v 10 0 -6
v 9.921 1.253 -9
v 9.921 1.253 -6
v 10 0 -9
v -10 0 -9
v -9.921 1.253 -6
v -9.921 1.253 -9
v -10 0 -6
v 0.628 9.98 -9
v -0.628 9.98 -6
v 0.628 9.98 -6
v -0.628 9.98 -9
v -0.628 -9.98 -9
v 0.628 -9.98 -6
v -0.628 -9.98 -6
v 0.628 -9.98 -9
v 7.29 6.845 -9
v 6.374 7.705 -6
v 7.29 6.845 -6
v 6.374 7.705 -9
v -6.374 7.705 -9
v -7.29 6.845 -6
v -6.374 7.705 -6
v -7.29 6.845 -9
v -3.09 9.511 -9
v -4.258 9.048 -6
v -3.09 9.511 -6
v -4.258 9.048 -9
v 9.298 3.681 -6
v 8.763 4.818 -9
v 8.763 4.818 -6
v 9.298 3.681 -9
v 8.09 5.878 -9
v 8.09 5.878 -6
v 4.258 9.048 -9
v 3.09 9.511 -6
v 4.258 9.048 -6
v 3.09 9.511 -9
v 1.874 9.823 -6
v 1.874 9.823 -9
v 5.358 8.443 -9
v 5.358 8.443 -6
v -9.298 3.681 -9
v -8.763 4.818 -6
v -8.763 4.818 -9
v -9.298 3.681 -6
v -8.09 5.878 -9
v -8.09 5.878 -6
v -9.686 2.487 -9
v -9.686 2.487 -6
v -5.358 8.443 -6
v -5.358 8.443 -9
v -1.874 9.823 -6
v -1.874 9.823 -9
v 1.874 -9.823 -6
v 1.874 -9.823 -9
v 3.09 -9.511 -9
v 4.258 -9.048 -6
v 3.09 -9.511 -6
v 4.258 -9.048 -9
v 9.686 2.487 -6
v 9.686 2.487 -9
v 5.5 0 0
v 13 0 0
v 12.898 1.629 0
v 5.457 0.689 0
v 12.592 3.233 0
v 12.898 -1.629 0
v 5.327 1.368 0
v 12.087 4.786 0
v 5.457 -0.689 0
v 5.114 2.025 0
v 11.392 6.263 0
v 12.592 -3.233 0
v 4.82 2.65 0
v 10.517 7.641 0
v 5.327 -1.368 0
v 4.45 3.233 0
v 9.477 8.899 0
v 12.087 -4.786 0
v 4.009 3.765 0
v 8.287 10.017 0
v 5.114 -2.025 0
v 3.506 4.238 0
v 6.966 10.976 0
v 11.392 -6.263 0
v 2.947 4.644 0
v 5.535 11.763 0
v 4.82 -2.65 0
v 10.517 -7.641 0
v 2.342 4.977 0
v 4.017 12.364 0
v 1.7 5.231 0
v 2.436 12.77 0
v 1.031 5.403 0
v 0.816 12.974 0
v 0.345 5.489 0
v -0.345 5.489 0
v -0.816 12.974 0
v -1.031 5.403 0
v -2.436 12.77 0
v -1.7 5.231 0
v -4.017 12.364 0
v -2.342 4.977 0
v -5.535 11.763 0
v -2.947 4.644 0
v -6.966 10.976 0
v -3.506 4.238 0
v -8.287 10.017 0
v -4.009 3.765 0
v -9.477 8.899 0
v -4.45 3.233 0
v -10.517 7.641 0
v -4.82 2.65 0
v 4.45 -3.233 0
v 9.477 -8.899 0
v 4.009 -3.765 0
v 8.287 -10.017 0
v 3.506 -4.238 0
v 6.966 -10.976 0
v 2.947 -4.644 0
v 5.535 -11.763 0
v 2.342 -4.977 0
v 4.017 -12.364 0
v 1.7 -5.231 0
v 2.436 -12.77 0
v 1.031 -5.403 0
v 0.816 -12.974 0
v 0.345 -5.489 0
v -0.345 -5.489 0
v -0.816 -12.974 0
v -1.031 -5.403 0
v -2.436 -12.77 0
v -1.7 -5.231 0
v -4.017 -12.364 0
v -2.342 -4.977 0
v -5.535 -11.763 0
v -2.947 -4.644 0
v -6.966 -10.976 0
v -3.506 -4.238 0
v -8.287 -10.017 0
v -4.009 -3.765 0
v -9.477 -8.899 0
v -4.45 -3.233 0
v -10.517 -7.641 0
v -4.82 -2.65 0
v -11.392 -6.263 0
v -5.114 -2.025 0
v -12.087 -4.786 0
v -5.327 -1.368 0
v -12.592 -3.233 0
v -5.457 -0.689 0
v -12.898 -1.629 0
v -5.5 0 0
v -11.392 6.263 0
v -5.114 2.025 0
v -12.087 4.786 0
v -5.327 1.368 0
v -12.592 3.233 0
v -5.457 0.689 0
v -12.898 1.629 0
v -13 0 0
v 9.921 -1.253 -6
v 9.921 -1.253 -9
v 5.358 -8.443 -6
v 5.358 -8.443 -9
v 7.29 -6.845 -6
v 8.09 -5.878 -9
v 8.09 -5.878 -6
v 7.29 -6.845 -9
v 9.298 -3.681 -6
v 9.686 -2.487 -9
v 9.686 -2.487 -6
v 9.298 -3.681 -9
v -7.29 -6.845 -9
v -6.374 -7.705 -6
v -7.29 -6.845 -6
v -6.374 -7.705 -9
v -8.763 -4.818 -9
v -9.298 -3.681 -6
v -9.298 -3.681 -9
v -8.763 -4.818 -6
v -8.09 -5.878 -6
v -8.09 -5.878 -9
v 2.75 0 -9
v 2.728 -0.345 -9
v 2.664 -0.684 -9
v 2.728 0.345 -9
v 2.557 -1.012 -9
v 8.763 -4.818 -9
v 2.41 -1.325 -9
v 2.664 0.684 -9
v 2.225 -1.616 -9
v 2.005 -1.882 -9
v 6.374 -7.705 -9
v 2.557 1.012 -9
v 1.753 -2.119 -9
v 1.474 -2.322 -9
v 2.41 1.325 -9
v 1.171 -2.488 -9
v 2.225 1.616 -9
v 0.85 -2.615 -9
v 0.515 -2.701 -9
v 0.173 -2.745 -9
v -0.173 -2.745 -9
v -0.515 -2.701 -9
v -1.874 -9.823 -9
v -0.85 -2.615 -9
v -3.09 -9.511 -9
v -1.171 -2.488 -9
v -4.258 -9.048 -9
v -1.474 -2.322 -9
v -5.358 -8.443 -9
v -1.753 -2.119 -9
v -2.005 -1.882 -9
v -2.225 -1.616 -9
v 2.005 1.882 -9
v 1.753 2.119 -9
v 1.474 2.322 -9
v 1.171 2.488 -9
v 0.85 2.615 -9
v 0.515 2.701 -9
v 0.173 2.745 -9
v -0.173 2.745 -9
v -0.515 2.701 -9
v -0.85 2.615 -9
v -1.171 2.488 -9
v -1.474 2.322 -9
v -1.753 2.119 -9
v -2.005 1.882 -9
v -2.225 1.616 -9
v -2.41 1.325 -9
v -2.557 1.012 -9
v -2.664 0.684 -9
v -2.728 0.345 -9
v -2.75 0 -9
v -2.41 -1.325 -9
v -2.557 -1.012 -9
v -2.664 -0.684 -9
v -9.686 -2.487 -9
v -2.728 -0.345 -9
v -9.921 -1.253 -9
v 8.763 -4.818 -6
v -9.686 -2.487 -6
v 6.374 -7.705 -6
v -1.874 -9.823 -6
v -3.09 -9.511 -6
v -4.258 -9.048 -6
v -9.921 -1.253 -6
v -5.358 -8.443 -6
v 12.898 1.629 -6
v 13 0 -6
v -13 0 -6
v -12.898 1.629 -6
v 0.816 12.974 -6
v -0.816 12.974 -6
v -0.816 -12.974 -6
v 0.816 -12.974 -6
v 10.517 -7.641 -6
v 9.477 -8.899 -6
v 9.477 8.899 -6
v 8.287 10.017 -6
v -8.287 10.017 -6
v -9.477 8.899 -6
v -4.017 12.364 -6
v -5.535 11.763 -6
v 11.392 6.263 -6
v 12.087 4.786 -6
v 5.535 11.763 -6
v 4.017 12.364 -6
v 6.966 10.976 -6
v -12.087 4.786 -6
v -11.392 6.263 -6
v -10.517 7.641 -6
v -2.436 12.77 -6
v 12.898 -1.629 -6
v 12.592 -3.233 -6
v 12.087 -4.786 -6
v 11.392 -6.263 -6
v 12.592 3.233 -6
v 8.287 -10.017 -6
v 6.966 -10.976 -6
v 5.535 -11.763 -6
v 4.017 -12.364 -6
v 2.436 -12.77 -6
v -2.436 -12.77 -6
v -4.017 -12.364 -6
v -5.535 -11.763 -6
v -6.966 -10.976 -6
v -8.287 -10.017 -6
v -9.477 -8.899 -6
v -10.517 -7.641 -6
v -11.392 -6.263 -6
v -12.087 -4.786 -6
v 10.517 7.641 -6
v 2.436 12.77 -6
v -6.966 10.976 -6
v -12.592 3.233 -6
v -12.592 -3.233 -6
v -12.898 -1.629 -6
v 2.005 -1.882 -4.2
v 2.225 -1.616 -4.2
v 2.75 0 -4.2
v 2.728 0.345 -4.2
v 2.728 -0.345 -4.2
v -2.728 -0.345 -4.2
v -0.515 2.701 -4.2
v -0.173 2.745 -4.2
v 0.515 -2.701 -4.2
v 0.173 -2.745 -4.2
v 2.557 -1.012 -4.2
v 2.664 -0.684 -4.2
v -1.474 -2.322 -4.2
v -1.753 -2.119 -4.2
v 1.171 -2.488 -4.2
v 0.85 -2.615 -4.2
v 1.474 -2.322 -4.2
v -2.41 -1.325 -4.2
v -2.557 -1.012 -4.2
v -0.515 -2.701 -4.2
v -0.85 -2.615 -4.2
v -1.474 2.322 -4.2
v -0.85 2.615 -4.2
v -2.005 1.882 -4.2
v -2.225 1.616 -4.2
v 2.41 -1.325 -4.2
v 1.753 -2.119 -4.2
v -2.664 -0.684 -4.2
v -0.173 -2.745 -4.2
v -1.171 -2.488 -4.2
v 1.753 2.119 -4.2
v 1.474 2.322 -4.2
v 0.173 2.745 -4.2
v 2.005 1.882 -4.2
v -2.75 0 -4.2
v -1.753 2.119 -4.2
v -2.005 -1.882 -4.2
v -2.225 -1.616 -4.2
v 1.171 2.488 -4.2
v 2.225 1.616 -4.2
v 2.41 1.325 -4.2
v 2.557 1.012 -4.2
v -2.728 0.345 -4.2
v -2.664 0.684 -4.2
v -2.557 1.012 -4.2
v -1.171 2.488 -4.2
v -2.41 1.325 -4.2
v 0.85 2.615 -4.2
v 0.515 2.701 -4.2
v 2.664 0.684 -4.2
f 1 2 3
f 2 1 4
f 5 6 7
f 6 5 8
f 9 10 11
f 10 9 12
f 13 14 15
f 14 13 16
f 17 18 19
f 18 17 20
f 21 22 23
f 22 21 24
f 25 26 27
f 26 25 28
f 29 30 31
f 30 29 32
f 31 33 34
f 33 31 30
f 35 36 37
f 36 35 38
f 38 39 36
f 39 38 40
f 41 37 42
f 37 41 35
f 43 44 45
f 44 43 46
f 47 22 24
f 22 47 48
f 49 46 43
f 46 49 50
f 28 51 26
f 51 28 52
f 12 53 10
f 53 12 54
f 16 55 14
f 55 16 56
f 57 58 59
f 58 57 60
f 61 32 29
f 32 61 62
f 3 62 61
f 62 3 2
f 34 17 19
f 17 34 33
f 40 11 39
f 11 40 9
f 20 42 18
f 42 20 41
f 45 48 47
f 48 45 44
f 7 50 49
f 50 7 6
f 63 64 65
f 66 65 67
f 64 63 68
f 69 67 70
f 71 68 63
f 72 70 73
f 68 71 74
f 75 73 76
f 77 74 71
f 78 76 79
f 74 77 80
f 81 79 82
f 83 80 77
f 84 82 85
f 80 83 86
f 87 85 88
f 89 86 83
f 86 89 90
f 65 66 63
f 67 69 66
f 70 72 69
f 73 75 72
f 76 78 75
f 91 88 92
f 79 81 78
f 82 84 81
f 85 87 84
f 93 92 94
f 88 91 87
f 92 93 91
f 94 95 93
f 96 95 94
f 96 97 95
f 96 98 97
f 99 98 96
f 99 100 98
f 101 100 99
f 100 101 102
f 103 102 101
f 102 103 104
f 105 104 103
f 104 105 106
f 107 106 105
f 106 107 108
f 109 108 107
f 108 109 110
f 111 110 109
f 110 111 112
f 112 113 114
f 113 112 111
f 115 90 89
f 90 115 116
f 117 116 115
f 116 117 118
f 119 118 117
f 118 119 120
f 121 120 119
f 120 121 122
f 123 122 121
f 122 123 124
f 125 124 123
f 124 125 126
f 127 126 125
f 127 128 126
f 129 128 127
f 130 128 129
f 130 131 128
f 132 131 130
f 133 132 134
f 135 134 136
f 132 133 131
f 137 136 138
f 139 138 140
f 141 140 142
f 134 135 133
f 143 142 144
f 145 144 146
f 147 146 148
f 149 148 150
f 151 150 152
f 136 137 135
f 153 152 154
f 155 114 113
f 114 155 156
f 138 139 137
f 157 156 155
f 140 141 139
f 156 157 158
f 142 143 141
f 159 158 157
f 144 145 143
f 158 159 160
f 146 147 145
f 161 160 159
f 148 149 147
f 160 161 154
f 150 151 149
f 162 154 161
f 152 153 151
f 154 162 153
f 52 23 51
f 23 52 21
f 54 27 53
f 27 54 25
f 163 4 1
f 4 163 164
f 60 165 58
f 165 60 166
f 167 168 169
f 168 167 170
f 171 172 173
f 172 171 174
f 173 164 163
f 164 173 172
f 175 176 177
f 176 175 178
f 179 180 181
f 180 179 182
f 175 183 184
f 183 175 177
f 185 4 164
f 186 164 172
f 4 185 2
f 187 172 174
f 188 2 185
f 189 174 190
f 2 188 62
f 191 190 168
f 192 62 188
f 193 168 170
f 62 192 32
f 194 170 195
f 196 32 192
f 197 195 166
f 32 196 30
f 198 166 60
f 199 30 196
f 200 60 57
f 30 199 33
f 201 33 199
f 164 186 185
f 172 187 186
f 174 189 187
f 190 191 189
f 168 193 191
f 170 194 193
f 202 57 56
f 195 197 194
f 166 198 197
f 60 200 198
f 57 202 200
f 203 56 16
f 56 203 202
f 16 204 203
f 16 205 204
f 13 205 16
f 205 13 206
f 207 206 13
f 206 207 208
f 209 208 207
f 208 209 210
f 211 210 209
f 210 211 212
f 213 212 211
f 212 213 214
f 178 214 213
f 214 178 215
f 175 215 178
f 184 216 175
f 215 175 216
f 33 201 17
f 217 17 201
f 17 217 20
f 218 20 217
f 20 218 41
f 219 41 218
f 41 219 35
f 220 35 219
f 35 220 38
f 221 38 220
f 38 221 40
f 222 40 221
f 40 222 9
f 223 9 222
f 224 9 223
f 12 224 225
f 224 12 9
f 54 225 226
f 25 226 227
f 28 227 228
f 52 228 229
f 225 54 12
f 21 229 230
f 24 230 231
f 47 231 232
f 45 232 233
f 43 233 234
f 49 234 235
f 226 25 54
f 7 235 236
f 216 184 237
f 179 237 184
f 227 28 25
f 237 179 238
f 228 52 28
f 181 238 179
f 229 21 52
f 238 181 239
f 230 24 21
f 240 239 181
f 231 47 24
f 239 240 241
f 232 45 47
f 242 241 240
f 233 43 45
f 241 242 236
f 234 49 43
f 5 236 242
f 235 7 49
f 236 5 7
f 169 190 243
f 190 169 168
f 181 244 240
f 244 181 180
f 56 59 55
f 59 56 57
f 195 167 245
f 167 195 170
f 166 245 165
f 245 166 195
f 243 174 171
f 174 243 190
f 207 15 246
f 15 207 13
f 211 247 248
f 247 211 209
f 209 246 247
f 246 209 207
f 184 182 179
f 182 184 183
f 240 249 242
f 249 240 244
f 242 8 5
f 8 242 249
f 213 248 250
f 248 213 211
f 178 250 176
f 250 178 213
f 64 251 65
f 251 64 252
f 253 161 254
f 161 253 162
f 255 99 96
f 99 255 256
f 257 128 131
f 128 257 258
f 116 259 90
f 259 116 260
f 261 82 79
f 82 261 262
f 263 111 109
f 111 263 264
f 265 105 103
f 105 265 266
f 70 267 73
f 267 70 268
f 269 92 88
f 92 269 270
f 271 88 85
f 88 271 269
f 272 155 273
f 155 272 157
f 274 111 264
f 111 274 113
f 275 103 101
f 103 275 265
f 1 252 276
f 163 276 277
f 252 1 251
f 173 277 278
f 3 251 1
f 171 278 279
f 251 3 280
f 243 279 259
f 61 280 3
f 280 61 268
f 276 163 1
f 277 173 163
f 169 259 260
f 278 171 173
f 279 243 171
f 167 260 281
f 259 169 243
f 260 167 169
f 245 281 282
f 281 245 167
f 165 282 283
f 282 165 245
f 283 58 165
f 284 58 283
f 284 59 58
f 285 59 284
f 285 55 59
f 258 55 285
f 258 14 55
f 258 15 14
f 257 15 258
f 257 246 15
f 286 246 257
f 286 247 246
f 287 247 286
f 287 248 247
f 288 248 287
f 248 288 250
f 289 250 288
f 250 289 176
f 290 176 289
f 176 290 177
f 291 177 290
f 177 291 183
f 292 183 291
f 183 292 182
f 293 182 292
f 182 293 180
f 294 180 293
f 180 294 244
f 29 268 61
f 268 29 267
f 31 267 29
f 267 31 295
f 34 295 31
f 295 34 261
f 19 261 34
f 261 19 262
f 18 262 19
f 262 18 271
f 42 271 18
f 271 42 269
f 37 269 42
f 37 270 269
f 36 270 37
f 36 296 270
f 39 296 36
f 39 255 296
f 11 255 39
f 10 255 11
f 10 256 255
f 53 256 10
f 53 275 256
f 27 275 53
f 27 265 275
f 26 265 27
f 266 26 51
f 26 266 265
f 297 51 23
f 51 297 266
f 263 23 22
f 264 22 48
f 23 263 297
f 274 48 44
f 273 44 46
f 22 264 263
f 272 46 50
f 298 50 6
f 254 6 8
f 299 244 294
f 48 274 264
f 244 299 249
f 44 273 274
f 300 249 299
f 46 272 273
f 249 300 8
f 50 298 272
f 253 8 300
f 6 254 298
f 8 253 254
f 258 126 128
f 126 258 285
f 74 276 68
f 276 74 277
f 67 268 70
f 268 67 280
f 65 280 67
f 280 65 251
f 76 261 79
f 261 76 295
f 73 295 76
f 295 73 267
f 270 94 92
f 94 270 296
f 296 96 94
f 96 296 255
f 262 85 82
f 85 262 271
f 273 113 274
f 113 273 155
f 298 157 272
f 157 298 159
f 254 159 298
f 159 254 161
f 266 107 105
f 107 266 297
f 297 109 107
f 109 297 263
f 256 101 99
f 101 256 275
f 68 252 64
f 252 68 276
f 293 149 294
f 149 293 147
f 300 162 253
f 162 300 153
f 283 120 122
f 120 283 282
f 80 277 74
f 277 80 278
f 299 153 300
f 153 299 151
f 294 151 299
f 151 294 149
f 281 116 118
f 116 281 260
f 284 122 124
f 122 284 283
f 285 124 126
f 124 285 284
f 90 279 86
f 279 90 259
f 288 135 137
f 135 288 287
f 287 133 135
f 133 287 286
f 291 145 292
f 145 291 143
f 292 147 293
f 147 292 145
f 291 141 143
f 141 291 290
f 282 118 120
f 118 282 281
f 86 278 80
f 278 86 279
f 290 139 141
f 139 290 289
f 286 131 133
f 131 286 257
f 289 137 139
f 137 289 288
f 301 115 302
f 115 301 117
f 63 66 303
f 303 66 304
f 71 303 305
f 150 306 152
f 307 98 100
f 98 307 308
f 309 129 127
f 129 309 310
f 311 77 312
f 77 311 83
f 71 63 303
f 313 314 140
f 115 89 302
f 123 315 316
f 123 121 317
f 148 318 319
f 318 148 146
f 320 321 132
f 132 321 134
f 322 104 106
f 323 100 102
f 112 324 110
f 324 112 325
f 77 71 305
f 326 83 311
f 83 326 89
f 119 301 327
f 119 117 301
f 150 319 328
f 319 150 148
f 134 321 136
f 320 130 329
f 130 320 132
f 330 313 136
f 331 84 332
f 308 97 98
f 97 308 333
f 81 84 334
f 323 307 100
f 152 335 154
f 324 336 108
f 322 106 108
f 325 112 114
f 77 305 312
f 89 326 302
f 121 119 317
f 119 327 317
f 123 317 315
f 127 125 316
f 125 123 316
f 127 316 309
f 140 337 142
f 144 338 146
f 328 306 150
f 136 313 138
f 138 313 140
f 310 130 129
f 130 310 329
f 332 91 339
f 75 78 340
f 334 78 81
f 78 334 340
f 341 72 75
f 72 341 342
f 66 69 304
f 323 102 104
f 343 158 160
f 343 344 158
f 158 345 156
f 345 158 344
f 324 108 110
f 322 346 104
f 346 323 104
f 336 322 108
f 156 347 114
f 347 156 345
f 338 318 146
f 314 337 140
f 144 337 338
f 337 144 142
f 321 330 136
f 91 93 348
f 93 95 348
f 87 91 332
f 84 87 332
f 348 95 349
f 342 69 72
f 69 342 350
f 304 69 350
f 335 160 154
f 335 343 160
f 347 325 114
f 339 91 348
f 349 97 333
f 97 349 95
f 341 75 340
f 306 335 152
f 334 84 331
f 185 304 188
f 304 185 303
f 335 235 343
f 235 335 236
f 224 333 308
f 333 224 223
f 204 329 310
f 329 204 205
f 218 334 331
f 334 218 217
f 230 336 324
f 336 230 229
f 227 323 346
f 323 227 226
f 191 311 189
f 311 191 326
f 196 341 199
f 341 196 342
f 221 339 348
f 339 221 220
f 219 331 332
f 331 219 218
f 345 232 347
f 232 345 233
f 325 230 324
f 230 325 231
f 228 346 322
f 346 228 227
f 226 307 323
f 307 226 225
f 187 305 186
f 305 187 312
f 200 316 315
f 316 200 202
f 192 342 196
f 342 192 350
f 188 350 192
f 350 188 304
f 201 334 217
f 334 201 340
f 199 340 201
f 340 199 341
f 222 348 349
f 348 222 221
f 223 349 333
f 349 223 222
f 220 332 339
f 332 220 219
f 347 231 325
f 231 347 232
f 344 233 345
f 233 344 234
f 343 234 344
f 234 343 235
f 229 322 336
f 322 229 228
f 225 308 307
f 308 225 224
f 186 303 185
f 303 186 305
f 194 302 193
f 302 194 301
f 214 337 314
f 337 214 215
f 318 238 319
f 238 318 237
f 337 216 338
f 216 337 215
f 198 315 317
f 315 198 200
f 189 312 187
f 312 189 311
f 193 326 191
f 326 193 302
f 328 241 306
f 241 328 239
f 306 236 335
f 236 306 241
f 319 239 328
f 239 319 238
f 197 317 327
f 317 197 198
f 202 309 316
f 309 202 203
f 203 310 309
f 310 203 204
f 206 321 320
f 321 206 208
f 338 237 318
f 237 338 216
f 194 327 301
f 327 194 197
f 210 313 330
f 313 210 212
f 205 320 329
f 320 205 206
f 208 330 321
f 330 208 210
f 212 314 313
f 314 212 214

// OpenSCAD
$fn = 50;


difference() {
	union() {
		translate(v = [0, 0, -9.0000000000]) {
			cylinder(h = 9, r = 10.0000000000);
		}
		translate(v = [0, 0, -6.0000000000]) {
			cylinder(h = 6, r = 13.0000000000);
		}
	}
	union() {
		translate(v = [0, 0, 0]) {
			rotate(a = [0, 0, 0]) {
				difference() {
					union() {
						#translate(v = [0, 0, -9.0000000000]) {
							cylinder(h = 9, r = 2.2500000000);
						}
						#translate(v = [0, 0, -4.2000000000]) {
							cylinder(h = 4.2000000000, r1 = 2.7500000000, r2 = 5.5000000000);
						}
						#translate(v = [0, 0, -9.0000000000]) {
							cylinder(h = 9, r = 2.7500000000);
						}
						#translate(v = [0, 0, -9.0000000000]) {
							cylinder(h = 9, r = 2.2500000000);
						}
					}
					union();
				}
			}
		}
	}
}
